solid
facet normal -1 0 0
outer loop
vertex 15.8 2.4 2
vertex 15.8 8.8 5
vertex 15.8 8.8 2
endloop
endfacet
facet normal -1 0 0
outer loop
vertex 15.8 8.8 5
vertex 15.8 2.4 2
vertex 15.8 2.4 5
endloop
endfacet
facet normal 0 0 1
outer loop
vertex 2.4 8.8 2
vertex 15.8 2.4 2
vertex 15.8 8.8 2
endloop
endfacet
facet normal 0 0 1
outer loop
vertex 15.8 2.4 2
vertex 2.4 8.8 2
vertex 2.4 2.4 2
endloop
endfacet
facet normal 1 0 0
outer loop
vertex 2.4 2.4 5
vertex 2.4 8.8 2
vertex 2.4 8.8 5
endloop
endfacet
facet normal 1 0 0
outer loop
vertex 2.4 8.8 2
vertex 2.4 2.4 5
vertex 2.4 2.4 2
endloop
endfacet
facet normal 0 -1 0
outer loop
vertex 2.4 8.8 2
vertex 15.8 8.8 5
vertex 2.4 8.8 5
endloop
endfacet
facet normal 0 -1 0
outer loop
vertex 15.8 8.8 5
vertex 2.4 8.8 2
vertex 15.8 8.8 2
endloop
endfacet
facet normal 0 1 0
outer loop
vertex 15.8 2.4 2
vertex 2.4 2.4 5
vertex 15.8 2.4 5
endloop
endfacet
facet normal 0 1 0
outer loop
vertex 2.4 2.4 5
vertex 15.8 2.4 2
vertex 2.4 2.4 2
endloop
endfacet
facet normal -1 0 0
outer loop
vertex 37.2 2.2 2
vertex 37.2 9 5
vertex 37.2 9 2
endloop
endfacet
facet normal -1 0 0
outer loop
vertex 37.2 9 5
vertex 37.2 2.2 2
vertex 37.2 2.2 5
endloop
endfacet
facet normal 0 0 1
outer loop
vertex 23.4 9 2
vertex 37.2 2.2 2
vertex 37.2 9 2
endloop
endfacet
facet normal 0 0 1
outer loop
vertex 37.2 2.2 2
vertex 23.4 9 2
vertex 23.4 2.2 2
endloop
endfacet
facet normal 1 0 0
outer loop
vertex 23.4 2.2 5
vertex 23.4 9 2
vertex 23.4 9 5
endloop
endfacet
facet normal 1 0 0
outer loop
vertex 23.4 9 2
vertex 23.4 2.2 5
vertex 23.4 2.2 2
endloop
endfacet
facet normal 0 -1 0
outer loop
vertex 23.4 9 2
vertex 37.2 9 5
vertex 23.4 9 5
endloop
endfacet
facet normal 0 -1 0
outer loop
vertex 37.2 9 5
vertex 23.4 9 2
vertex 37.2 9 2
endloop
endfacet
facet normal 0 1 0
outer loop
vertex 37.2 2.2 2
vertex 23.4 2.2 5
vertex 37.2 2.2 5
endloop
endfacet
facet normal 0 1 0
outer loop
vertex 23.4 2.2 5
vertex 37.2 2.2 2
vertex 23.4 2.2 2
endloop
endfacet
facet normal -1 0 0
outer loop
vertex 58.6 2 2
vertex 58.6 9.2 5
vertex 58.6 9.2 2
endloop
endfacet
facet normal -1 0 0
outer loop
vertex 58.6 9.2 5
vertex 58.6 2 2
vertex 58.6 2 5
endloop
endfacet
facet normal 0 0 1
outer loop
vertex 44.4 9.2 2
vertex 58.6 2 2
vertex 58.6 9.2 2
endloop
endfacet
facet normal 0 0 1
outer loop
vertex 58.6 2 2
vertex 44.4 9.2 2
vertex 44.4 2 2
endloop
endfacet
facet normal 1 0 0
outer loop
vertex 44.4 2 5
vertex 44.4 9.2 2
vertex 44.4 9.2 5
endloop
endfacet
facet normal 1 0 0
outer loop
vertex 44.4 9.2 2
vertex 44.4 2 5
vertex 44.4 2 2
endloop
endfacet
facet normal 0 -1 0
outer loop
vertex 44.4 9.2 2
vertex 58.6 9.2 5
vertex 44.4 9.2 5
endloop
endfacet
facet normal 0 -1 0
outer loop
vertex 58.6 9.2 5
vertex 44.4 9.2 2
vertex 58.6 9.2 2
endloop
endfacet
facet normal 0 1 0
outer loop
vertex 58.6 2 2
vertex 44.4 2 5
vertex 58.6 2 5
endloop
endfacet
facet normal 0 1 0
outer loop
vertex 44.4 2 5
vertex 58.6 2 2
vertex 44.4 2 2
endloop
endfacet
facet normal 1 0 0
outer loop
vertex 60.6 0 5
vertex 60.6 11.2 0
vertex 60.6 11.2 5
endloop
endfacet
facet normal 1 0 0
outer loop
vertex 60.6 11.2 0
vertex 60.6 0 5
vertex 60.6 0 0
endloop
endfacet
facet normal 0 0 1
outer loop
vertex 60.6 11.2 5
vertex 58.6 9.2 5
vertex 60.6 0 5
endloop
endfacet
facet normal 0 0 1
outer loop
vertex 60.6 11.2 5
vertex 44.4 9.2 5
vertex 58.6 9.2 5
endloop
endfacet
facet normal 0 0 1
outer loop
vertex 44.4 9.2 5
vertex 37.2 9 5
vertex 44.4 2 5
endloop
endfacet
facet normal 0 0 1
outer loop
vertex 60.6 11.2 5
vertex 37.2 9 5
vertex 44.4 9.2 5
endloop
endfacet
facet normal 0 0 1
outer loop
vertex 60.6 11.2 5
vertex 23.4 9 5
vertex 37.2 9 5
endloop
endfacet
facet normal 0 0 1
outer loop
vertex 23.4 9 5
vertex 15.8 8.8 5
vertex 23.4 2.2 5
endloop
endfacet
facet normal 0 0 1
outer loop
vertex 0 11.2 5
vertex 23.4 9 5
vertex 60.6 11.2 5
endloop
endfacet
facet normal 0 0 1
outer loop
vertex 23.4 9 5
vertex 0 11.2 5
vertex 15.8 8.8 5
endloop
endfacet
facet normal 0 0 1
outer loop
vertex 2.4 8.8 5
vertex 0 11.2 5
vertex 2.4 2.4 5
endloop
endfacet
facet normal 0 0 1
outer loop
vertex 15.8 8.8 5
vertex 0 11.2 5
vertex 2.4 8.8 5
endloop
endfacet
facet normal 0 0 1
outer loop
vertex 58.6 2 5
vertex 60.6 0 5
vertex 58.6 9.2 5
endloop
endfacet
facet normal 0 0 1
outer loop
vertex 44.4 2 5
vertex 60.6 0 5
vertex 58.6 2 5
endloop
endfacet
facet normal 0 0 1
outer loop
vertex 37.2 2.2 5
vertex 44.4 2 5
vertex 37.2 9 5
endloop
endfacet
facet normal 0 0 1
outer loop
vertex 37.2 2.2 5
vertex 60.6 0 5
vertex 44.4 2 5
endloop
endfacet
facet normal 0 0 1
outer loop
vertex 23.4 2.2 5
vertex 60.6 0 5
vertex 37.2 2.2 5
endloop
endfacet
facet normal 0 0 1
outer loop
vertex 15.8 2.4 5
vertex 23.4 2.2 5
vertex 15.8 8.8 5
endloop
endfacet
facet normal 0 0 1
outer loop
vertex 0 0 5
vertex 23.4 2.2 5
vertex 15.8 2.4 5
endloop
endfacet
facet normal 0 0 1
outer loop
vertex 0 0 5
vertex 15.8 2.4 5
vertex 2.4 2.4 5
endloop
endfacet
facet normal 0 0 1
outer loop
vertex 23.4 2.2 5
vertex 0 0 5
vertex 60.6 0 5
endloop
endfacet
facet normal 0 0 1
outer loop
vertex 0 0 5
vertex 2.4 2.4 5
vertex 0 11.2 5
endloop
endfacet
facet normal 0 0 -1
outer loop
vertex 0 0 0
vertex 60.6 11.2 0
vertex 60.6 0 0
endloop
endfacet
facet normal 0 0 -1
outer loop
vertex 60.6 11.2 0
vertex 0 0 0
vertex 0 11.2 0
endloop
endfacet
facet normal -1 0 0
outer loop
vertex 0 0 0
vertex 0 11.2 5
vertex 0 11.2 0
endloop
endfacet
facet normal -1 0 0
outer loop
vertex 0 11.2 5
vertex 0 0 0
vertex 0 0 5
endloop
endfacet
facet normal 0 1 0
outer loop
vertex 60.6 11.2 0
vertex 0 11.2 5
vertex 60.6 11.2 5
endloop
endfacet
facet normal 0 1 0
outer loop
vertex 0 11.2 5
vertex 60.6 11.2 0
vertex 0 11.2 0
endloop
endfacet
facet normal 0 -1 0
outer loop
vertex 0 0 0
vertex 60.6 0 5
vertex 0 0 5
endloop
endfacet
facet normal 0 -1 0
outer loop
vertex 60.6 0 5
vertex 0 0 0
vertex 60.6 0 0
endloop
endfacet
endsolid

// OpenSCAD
// SPDX-License-Identifier: CERN-OHL-P-2.0
// McGruber three-clearance switch-body FIT GAUGE, not a finished device.
// UNMEASURED defaults: change to caliper measurements before printing.
// Does NOT include holes, screws, solder pads, wiring, or a button actuator.
switch_body_length = 13; // mm — placeholder
switch_body_width = 6;   // mm — placeholder
switch_body_height = 6;  // mm — placeholder (choose pocket depth below)
floor_thickness = 2;
wall_thickness = 2;
gap_between_pockets = 3;
clearances = [0.20, 0.40, 0.60]; // per-side clearance trials

assert(switch_body_length > 1 && switch_body_width > 1 && switch_body_height > 1);
assert(floor_thickness >= 1 && wall_thickness >= 1.2 && gap_between_pockets >= 1);
assert(len(clearances) == 3 && min(clearances) >= 0 && max(clearances) < wall_thickness);
max_clearance = max(clearances);
pitch = switch_body_length + 2 * (wall_thickness + max_clearance) + gap_between_pockets;
total_length = 3 * pitch - gap_between_pockets;
total_width = switch_body_width + 2 * (wall_thickness + max_clearance);
pocket_depth = min(switch_body_height, 3); // shallow, open test pockets
total_height = floor_thickness + pocket_depth;

difference() {
  cube([total_length, total_width, total_height]);
  for (i = [0 : 2]) {
    c = clearances[i];
    translate([
      i * pitch + wall_thickness + max_clearance - c,
      wall_thickness + max_clearance - c,
      floor_thickness
    ])
      cube([
        switch_body_length + 2 * c,
        switch_body_width + 2 * c,
        pocket_depth + 0.1
      ]);
  }
}
